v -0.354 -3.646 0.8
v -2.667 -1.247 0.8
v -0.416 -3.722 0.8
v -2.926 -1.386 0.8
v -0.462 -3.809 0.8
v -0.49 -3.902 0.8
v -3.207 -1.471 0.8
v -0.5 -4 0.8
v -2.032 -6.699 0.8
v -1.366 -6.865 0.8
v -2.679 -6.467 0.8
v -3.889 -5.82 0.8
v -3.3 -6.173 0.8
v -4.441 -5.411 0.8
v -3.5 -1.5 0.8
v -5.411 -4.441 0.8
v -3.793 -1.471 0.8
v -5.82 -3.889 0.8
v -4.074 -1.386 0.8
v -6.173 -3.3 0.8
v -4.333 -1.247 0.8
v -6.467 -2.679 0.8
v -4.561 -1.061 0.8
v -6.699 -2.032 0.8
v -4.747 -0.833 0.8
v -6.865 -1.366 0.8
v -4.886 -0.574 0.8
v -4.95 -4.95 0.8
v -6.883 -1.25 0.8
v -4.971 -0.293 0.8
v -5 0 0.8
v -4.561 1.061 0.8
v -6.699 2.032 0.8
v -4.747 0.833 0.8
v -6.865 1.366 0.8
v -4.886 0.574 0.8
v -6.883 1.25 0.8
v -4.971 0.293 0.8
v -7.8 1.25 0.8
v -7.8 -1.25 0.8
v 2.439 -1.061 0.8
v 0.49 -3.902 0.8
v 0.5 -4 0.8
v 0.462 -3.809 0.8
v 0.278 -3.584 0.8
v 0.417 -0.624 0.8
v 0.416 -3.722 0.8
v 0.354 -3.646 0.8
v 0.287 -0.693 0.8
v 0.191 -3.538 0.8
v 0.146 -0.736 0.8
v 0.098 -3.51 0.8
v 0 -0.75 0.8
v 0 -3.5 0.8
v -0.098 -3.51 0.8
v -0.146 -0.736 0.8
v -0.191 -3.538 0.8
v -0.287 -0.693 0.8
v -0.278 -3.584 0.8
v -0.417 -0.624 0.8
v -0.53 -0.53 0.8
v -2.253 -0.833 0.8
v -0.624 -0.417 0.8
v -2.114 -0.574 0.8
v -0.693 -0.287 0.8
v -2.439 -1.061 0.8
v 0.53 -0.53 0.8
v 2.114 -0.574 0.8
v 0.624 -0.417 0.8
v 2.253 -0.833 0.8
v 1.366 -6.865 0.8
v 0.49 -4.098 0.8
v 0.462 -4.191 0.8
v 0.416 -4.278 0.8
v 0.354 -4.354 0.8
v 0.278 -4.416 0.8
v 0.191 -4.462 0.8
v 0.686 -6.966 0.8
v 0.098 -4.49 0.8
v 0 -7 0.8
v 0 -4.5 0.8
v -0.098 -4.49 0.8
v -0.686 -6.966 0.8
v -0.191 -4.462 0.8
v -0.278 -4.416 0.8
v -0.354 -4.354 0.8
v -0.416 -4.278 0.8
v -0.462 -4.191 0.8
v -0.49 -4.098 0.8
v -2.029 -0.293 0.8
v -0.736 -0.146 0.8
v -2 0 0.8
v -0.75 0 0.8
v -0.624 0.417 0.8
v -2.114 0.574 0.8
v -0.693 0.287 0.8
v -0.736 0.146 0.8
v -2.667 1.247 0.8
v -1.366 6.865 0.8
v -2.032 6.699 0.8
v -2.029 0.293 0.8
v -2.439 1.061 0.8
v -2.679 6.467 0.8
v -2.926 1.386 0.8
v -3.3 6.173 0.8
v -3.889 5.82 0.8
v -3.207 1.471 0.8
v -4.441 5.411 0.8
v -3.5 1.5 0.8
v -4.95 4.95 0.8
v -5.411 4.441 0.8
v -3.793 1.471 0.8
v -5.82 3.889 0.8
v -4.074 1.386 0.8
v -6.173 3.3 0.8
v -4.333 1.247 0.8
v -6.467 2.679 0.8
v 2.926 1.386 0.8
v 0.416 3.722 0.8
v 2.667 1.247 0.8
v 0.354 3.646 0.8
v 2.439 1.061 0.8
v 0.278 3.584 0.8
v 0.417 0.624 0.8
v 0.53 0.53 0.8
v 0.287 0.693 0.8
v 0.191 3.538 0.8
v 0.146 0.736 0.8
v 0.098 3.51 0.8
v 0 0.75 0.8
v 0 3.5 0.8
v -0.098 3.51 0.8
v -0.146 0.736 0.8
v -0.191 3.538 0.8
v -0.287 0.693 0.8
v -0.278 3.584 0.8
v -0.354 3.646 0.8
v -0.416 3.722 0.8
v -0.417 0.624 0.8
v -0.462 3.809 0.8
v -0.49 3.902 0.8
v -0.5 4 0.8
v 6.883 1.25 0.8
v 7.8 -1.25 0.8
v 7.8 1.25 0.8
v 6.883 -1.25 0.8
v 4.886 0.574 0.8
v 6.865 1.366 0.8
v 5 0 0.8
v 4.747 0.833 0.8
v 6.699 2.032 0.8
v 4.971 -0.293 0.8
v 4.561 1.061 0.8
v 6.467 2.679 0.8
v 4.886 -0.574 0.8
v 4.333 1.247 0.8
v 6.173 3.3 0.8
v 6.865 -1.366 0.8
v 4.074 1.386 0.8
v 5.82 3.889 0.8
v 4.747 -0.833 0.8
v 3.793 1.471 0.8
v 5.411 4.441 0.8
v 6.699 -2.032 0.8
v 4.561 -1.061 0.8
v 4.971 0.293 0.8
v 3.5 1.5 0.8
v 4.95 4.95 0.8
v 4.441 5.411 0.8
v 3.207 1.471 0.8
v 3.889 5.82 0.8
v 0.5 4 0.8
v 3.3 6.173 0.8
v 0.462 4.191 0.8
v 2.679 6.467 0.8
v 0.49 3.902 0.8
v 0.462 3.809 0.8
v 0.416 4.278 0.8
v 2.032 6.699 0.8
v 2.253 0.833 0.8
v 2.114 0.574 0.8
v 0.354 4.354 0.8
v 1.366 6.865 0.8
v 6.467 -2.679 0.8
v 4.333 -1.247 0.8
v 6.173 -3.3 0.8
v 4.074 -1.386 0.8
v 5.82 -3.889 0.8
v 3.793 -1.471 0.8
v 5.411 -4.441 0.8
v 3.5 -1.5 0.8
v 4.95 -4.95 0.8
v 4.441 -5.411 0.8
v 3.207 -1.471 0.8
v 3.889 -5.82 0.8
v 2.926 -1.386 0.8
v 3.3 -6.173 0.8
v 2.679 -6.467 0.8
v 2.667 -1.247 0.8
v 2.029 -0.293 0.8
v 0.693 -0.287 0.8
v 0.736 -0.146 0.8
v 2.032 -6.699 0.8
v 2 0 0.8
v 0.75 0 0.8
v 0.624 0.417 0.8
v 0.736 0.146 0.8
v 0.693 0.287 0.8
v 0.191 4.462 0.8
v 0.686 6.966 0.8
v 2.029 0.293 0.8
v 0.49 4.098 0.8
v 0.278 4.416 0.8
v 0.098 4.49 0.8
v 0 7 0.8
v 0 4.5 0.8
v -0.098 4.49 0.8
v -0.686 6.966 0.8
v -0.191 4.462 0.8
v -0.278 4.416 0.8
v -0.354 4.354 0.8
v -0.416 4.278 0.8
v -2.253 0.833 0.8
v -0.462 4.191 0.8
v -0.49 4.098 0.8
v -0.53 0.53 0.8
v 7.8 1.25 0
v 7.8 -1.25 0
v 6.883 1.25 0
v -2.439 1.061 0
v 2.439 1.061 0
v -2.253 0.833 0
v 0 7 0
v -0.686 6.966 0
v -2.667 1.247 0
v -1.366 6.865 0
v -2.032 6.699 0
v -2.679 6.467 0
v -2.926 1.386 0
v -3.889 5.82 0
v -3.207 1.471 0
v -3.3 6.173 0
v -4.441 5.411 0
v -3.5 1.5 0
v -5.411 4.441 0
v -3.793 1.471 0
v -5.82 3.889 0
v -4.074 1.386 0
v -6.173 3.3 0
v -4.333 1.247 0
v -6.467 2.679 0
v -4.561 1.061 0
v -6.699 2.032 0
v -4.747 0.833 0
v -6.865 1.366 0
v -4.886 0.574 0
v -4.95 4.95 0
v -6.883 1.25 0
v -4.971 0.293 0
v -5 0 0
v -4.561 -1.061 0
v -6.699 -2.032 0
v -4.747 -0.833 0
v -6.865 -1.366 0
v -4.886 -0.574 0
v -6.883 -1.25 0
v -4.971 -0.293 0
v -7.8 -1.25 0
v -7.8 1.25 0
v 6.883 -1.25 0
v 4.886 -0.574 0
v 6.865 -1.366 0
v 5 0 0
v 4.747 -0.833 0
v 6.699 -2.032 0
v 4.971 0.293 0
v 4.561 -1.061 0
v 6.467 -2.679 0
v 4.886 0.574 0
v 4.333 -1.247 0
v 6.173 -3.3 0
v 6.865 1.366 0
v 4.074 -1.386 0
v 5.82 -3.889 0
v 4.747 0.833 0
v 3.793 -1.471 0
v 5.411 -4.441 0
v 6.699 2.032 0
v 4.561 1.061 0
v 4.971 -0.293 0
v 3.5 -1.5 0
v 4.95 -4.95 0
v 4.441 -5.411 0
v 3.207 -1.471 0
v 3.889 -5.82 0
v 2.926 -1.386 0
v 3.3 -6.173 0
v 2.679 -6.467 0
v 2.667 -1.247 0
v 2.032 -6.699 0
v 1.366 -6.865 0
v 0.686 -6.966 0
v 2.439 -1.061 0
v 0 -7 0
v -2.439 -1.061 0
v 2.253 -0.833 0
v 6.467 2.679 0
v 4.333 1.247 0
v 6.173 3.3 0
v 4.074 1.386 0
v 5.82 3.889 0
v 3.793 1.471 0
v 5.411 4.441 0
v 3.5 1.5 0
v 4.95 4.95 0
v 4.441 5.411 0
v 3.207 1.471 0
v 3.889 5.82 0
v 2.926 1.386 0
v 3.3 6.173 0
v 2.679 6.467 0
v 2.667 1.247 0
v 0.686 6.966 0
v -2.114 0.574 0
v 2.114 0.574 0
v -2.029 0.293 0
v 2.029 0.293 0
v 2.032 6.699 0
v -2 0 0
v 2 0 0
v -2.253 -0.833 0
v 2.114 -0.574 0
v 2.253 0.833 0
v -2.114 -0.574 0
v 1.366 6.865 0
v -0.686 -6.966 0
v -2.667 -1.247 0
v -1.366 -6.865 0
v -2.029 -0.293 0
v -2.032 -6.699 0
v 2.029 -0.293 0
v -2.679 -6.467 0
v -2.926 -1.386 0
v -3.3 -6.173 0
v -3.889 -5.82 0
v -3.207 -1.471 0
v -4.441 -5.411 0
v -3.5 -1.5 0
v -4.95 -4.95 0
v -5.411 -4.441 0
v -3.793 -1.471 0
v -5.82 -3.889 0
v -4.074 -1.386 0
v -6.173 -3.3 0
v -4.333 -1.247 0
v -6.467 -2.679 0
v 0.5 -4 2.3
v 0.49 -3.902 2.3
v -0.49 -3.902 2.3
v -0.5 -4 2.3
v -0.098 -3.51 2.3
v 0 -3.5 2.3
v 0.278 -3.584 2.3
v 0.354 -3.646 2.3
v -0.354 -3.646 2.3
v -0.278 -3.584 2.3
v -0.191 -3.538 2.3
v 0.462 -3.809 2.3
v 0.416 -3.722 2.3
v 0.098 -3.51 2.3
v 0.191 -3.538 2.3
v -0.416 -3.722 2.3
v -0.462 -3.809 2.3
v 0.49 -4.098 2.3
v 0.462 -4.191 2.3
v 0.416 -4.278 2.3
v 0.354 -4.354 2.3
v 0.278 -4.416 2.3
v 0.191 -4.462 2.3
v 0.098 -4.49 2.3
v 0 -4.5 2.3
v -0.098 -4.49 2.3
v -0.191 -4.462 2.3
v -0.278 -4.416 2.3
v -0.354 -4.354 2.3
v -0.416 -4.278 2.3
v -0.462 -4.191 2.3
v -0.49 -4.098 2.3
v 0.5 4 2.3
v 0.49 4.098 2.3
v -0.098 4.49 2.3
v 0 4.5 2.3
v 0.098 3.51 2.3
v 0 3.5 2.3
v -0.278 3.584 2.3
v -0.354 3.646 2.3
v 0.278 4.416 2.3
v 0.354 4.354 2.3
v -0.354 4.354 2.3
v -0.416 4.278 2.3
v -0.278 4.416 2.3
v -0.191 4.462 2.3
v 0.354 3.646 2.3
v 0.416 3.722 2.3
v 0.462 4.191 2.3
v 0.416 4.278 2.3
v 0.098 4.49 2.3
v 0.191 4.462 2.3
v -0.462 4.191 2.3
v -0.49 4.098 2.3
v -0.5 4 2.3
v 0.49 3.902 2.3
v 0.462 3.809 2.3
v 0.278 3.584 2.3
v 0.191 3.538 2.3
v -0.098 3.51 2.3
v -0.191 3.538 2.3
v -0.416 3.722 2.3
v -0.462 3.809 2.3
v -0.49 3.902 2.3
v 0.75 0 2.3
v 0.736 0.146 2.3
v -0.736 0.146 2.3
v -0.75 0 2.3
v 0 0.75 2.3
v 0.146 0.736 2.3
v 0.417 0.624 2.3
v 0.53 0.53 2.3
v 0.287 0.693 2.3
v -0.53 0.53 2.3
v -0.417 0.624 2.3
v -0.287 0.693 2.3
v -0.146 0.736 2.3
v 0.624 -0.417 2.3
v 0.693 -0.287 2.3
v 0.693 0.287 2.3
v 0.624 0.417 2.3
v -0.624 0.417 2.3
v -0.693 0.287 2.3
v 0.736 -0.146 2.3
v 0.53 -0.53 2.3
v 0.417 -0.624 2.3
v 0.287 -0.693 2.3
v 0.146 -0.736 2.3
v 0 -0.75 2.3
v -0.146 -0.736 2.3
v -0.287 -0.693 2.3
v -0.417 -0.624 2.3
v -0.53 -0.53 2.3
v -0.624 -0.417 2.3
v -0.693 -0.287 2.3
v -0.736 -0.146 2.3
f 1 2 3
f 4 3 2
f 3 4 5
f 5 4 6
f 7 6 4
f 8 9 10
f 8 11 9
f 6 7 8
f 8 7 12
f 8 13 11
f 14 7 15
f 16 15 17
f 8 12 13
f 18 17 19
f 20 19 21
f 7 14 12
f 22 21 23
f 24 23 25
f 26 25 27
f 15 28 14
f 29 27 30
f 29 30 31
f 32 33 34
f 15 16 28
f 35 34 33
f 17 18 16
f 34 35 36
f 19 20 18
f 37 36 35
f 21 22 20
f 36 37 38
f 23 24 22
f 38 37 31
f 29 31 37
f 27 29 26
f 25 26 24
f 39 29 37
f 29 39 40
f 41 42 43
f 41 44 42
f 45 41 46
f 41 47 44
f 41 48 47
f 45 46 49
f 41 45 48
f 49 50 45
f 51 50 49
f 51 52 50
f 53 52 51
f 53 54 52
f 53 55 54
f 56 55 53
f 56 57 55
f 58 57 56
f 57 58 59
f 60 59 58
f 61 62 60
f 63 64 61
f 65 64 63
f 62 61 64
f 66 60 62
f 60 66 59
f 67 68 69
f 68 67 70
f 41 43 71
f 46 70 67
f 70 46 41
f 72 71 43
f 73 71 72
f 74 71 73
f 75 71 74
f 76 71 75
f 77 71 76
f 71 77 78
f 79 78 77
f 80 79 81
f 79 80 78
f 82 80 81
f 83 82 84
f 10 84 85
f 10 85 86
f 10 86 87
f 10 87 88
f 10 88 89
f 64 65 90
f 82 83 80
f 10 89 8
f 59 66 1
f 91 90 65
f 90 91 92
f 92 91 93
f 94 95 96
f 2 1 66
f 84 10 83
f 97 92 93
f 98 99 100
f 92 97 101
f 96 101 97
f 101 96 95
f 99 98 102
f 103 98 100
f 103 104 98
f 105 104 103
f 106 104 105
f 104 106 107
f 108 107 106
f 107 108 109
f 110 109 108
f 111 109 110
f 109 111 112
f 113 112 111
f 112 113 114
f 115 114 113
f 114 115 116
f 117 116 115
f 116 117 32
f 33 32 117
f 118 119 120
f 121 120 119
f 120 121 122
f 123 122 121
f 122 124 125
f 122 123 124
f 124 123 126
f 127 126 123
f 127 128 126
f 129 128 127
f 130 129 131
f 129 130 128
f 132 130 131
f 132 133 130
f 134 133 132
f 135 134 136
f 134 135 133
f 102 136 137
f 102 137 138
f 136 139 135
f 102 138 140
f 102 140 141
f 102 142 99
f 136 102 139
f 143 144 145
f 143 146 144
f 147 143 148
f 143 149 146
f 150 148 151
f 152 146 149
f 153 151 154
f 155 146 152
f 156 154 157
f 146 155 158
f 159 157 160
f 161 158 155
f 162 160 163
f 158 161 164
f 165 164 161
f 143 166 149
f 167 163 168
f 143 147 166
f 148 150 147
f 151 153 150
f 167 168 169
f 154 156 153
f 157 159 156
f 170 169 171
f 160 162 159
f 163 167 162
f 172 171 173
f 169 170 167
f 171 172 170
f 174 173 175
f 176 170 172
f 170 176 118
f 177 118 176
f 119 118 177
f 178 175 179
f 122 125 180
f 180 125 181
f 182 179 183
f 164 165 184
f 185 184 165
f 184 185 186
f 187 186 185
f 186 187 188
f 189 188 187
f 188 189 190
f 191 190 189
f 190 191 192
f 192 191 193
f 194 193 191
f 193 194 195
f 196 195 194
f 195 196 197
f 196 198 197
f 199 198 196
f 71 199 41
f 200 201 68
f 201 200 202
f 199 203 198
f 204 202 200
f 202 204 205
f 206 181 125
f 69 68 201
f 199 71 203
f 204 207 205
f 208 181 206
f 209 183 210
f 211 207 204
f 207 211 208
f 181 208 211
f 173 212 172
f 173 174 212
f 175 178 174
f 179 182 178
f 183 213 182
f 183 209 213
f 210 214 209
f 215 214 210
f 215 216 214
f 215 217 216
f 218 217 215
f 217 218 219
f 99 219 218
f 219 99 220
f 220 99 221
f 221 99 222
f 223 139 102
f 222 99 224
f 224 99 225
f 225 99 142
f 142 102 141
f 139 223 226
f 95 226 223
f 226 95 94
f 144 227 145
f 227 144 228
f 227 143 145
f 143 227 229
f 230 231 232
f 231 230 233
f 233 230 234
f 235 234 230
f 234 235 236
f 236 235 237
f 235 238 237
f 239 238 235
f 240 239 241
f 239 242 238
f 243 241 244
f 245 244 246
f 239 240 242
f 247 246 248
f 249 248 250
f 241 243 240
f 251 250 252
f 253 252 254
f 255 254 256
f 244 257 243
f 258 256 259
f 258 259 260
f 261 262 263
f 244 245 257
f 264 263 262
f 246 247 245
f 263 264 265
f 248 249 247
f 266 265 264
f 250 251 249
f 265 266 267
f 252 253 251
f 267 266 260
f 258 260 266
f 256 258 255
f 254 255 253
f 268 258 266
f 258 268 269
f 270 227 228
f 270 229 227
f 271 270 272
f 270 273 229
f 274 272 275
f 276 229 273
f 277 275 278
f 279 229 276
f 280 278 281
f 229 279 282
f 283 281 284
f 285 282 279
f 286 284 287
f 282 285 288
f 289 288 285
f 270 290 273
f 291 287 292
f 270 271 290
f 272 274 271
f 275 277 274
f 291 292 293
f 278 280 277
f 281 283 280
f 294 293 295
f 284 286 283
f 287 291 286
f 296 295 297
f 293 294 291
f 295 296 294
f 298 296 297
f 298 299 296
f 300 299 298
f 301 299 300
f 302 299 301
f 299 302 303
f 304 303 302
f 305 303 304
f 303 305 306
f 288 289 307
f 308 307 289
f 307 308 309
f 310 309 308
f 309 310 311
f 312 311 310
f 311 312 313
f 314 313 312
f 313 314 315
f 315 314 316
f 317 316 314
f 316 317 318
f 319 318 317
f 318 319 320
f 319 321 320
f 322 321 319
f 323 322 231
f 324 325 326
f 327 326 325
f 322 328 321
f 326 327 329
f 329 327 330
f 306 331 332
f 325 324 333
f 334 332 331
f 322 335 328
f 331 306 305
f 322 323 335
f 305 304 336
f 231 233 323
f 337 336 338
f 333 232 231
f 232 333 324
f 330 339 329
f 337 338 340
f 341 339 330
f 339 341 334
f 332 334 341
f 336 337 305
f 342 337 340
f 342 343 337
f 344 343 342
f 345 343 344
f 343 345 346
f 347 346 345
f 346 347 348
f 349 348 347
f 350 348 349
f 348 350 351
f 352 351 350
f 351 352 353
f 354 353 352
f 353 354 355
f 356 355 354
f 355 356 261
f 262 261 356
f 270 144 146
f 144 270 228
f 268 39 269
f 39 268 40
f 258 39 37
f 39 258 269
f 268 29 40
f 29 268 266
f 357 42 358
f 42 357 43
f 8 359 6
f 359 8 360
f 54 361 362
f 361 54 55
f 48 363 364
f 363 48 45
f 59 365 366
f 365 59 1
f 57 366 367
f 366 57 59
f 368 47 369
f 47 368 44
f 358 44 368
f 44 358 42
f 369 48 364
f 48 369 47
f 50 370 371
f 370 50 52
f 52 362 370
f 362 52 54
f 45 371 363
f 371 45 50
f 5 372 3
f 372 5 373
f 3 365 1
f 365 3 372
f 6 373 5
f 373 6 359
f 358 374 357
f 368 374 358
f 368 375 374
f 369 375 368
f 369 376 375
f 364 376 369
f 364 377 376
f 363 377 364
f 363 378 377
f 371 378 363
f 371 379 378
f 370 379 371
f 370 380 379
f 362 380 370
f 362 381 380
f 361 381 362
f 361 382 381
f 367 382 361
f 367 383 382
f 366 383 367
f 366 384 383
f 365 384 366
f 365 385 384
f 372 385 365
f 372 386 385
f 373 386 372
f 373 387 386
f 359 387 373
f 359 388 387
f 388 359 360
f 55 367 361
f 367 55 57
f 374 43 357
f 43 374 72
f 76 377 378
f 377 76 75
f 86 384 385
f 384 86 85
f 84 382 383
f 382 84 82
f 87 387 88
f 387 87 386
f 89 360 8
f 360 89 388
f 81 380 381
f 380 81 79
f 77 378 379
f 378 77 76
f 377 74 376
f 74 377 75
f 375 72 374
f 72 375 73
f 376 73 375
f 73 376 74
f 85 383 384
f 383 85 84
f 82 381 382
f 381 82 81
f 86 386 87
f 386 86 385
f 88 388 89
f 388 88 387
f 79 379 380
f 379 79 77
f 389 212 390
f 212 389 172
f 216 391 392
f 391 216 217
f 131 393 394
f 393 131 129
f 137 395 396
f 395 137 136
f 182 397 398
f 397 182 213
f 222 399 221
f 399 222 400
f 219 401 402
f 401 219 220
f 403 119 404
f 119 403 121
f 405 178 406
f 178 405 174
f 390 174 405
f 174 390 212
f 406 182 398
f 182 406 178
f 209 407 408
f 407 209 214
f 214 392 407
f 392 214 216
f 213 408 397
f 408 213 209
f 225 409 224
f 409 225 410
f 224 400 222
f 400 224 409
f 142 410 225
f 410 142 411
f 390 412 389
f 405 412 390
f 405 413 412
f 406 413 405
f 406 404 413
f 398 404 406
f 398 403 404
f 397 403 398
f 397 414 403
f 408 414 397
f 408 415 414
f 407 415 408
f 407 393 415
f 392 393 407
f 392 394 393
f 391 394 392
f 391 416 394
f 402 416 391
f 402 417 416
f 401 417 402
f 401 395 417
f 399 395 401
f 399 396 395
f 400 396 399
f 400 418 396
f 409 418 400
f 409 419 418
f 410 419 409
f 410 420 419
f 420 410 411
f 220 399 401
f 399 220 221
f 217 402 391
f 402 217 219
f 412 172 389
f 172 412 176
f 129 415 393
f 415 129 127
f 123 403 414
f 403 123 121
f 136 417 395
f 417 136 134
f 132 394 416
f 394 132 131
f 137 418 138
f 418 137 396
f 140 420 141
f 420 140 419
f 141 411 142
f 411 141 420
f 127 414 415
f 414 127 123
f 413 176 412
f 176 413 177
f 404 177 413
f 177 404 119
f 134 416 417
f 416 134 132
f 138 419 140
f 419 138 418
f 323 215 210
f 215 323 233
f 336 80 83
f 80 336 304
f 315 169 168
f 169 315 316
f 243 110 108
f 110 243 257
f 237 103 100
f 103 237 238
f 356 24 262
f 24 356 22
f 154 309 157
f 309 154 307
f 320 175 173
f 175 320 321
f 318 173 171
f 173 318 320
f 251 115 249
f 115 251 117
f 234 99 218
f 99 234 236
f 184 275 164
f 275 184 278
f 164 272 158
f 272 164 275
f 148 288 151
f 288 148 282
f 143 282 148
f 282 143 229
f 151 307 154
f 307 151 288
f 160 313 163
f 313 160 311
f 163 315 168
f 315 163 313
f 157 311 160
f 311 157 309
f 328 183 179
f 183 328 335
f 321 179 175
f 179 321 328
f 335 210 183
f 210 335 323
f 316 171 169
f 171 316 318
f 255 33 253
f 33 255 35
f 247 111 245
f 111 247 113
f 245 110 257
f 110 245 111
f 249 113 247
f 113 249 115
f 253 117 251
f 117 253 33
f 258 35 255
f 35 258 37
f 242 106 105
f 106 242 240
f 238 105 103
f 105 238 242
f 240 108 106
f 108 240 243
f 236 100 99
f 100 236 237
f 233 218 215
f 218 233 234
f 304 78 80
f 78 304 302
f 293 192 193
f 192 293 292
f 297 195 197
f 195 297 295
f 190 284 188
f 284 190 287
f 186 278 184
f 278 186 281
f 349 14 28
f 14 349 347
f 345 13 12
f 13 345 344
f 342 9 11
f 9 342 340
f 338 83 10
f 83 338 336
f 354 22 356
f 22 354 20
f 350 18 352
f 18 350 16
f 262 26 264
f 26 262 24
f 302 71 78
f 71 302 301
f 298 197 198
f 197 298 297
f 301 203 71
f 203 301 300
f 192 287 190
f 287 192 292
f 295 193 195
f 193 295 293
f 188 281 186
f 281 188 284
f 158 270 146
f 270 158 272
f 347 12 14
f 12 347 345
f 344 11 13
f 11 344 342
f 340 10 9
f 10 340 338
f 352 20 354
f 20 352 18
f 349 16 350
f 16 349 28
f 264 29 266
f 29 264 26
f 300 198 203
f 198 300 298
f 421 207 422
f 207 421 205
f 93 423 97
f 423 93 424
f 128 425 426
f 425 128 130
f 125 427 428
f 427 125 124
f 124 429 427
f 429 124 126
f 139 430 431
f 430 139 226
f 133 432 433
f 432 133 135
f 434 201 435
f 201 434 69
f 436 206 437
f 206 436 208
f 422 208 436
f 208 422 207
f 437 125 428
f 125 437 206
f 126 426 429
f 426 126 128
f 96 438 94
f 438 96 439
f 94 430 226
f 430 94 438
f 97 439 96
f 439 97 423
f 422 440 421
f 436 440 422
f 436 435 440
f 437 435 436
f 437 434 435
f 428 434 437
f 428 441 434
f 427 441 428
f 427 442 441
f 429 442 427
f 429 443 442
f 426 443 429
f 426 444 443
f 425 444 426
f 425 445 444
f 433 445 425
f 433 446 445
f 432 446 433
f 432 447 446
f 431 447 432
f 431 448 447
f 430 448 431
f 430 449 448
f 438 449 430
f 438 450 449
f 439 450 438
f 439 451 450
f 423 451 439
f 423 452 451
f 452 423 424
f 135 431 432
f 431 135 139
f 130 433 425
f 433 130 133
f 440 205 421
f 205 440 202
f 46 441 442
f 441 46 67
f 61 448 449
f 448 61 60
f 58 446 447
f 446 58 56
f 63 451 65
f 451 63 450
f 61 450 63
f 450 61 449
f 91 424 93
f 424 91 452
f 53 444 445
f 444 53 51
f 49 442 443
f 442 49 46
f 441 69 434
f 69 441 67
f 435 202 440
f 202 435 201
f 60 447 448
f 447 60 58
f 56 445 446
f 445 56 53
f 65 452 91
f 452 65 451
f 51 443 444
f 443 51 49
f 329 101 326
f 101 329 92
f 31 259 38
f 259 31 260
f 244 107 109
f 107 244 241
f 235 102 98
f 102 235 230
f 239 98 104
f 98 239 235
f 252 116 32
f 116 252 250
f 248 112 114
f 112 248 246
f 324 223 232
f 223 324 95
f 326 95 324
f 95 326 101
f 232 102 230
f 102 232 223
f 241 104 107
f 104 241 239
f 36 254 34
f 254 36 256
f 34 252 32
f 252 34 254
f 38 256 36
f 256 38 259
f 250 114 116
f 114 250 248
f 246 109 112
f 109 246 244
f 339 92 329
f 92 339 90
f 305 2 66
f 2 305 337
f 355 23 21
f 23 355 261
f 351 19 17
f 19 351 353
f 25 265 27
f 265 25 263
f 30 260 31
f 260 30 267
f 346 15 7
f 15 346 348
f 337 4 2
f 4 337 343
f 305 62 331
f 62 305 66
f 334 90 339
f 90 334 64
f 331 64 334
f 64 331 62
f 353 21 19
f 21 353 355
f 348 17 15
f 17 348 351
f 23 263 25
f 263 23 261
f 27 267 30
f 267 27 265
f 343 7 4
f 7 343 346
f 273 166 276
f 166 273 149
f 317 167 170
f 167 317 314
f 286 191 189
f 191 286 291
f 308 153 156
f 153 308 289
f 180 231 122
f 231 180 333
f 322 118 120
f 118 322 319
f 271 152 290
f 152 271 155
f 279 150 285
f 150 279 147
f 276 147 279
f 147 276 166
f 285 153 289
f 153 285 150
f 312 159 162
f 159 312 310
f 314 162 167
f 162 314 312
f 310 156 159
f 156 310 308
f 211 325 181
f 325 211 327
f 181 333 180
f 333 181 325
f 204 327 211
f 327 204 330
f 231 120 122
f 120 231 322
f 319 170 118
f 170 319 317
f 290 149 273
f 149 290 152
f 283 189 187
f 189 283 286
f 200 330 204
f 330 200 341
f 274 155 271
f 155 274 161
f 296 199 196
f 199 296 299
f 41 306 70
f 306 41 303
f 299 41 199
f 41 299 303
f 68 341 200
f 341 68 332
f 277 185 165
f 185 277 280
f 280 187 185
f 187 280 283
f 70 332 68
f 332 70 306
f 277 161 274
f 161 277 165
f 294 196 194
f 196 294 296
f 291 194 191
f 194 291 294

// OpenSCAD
// Disco base da lampada - Bandeirante

disc_d = 14;
disc_t = 0.8;
tab_w  = 2.5;
tab_l  = 2;
tab_t  = disc_t;
pin_d  = 1;
pin_h  = 1.5;
pin_spacing = 8;
hole_d = 3;
hole_spacing = 7;

difference() {
    union() {
        // Disc
        cylinder(h=disc_t, d=disc_d, $fn=64);

        // Side tabs (opposite sides)
        for (a = [0, 180]) {
            rotate([0, 0, a])
                translate([disc_d/2 - 1.2, -tab_w/2, 0])
                    cube([tab_l, tab_w, tab_t]);
        }

        // Pins on top
        for (dy = [-pin_spacing/2, pin_spacing/2]) {
            translate([0, dy, disc_t])
                cylinder(h=pin_h, d=pin_d, $fn=32);
        }

        // Center pin
        translate([0, 0, disc_t])
            cylinder(h=pin_h, d=1.5, $fn=32);
    }

    // 2mm holes through disc, perpendicular to pins (along X axis)
    for (dx = [-hole_spacing/2, hole_spacing/2]) {
        translate([dx, 0, -1])
            cylinder(h=disc_t + 2, d=hole_d, $fn=32);
    }
}
